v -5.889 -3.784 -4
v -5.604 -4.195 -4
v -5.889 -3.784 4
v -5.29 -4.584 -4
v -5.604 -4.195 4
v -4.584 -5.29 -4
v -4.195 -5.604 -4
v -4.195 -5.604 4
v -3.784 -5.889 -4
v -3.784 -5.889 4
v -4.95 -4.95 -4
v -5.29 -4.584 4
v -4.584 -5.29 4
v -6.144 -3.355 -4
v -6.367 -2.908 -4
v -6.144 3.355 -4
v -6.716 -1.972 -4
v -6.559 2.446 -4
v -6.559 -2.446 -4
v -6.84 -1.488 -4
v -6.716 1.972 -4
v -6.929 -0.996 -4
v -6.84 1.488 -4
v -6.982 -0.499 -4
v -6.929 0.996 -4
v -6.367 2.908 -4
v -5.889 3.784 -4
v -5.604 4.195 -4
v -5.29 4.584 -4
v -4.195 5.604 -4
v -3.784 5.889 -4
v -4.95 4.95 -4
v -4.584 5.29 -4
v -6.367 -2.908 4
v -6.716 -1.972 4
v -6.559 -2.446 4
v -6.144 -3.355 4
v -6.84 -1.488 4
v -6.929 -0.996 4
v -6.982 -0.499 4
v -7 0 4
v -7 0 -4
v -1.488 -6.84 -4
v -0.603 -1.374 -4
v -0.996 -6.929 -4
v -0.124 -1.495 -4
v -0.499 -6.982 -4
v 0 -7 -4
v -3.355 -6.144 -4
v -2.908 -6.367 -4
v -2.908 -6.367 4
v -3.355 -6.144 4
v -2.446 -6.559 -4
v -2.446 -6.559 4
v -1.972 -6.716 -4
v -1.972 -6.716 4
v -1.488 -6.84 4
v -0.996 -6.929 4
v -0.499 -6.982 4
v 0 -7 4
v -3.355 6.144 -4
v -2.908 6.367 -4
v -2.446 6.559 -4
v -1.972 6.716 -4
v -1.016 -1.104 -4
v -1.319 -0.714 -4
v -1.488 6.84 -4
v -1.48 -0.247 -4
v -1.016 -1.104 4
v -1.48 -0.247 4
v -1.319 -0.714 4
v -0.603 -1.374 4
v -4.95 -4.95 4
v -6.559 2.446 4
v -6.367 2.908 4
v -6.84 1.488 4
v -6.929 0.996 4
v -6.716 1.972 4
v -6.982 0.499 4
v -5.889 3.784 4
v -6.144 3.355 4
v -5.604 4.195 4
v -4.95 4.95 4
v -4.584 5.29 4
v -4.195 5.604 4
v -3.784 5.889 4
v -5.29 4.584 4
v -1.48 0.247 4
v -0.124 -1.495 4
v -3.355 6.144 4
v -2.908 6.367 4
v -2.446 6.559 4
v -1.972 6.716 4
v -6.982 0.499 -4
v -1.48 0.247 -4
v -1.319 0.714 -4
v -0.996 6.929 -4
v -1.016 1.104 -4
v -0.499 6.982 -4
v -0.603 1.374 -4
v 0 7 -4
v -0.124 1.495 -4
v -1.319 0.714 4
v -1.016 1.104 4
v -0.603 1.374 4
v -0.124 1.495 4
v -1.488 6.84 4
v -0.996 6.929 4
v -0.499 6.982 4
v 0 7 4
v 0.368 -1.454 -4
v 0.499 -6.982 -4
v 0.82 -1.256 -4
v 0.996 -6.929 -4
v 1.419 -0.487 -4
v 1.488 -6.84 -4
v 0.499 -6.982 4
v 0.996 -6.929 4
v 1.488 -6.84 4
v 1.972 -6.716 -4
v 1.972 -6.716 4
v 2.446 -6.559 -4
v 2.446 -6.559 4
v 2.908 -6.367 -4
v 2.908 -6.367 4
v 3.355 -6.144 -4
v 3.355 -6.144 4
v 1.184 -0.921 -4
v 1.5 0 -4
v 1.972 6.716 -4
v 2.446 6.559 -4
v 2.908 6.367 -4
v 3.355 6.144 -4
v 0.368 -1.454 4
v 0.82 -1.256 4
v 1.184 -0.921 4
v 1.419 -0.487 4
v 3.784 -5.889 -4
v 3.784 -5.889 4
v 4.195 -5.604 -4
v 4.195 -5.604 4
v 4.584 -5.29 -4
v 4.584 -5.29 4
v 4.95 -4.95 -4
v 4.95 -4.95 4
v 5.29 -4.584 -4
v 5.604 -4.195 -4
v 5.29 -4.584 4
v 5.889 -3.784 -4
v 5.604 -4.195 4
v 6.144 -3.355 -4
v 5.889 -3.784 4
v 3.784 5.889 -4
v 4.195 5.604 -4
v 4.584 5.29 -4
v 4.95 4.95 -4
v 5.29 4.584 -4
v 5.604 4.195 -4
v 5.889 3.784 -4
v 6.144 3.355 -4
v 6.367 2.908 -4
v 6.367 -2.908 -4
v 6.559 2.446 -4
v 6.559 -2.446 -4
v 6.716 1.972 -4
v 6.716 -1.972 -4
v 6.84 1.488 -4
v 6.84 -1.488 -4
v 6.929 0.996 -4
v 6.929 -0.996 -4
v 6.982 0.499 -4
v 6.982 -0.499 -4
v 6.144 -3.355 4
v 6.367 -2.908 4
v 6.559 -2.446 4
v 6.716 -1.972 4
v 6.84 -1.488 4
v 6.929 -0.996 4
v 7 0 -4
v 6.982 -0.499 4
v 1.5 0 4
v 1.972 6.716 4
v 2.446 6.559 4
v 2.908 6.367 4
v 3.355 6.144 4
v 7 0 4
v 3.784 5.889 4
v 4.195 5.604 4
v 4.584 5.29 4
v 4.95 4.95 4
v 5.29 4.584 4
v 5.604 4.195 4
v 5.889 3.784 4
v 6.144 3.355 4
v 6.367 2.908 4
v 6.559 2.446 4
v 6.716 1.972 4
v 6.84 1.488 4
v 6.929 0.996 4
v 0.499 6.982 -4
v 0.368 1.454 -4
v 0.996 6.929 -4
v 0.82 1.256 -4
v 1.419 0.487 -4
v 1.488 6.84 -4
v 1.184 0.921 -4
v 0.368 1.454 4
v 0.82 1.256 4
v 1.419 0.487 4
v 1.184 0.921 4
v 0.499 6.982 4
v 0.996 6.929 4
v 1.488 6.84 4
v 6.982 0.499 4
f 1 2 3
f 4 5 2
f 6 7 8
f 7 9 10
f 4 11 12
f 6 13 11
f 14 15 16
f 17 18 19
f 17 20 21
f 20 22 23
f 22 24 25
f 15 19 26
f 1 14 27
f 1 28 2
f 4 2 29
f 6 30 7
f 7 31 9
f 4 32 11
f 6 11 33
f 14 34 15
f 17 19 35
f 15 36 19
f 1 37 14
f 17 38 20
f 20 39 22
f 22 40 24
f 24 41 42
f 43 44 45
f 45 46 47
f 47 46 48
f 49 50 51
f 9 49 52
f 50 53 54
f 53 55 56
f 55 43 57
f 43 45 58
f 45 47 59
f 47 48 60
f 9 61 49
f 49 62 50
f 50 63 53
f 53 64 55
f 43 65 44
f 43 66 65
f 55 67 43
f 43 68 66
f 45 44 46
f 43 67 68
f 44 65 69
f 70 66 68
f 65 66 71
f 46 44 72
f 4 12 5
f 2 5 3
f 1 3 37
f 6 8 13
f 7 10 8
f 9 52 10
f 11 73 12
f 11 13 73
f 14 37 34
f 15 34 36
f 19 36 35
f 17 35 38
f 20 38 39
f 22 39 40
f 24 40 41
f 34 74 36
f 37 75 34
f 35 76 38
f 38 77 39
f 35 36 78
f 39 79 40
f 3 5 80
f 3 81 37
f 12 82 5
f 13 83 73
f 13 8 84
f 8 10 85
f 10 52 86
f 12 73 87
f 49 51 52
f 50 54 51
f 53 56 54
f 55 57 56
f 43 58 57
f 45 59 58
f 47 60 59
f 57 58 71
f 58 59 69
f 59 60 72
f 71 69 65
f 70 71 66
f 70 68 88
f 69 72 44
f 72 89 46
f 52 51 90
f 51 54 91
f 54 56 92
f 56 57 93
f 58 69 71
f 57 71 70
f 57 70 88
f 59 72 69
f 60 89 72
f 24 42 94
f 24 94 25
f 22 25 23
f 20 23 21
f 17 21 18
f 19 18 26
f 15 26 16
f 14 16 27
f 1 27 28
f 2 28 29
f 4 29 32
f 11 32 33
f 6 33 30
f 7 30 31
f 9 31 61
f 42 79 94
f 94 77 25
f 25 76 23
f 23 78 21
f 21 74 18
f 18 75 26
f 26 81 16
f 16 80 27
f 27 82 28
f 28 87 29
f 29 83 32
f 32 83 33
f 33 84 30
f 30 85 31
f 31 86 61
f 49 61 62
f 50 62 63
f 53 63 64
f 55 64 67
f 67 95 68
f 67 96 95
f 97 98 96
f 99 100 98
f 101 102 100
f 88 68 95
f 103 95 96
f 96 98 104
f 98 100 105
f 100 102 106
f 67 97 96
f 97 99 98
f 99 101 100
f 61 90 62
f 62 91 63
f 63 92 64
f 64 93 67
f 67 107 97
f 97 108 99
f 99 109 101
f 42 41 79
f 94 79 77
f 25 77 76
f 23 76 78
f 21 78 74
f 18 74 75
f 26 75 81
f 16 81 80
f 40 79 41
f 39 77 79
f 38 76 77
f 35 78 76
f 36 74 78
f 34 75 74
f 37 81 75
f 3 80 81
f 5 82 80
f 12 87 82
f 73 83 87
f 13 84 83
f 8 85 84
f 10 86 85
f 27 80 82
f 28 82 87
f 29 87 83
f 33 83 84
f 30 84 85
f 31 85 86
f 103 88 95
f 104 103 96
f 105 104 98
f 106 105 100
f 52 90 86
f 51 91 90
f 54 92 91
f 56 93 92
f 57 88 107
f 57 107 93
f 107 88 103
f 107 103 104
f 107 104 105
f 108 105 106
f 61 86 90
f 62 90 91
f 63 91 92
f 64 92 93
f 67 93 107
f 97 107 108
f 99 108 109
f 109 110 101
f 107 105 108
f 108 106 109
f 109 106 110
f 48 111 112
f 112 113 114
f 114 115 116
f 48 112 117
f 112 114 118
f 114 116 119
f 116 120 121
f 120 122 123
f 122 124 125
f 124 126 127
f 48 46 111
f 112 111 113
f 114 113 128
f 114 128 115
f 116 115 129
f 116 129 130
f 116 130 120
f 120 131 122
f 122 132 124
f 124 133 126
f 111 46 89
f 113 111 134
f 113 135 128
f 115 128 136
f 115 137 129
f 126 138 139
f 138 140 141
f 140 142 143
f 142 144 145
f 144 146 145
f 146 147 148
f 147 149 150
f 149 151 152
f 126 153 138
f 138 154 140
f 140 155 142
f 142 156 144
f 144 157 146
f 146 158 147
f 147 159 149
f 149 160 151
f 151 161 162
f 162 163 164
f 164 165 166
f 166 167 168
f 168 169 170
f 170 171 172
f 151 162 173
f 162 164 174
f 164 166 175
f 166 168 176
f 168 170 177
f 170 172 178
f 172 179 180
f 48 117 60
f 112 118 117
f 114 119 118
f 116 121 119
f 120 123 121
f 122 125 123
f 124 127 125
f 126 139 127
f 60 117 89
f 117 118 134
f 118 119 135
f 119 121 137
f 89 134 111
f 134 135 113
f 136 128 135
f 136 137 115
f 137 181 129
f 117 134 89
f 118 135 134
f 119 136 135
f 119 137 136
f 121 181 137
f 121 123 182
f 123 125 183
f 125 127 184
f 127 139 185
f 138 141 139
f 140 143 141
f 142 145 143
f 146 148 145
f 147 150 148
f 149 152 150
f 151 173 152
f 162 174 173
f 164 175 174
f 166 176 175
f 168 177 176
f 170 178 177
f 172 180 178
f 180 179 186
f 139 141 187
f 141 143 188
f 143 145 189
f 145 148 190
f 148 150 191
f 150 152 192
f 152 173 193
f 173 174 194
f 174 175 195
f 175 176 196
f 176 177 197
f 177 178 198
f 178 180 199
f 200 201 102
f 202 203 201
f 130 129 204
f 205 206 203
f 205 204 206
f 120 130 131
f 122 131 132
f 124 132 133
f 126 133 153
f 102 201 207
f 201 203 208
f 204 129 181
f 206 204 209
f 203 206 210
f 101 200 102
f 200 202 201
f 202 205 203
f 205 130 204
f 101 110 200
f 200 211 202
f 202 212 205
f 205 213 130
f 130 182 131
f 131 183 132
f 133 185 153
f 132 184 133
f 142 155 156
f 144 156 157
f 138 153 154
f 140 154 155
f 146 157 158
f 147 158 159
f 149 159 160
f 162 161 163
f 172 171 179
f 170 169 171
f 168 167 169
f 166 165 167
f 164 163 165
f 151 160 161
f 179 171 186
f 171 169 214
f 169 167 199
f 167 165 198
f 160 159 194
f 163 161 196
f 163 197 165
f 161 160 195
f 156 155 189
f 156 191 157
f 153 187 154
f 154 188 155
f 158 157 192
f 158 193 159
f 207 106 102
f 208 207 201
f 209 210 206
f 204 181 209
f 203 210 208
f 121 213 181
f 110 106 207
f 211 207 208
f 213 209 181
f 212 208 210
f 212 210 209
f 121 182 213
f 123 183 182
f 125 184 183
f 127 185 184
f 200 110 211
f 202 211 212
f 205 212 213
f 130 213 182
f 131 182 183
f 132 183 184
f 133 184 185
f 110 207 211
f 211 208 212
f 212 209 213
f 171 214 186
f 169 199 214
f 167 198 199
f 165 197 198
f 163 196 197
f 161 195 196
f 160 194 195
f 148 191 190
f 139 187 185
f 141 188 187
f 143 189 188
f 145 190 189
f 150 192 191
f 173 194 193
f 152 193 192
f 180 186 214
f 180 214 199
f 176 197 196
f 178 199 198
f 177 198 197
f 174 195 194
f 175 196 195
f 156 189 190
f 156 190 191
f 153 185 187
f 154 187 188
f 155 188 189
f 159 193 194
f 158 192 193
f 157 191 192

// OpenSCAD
// file: ../lib/lib.scad
// Shared helpers. Include AFTER params.scad (needs TOL, M3_* etc.).
$fa = 4; $fs = 0.5;

module rrect(size, r) {            // 2D rounded rectangle, centred
    r2 = min(r, min(size[0], size[1]) / 2 - 0.001);
    offset(r = r2) square([size[0] - 2 * r2, size[1] - 2 * r2], center = true);
}
module rbox(size, r, center_xy = true) {   // box with rounded vertical edges
    translate(center_xy ? [0, 0, 0] : [size[0] / 2, size[1] / 2, 0])
        linear_extrude(size[2]) rrect([size[0], size[1]], r);
}
module rbox_at(x0, x1, y0, y1, z0, z1, r = 0.01) {
    translate([(x0 + x1) / 2, (y0 + y1) / 2, z0]) rbox([x1 - x0, y1 - y0, z1 - z0], r);
}
module box_at(x0, x1, y0, y1, z0, z1) { translate([x0, y0, z0]) cube([x1 - x0, y1 - y0, z1 - z0]); }

module ring(ro, ri, h) { difference() { cylinder(r = ro, h = h); translate([0, 0, -1]) cylinder(r = ri, h = h + 2); } }
module ring_sector(ro, ri, h, a0, a1) {
    intersection() {
        ring(ro, ri, h);
        linear_extrude(h) polygon(concat([[0, 0]], [for (a = [a0 : (a1 - a0) / 24 : a1]) 2 * ro * [cos(a), sin(a)]]));
    }
}
// teardrop hole along an axis lying horizontal (axis = Y after rotation), printable w/o support
module teardrop2d(d) { union() { circle(d = d); rotate(45) square(d / 2); } }
// vertical heat-set insert hole, opening at z=0 going +z (depth l)
module insert_hole(l = M3_INSERT_L) { translate([0, 0, -EPS]) cylinder(d = M3_INSERT_D, h = l + EPS); }
module m3_clear(l) { translate([0, 0, -EPS]) cylinder(d = M3_CLEAR, h = l + 2 * EPS); }
module m3_csk(l) {  // countersunk clearance from z=0 upward, head at z=0 side
    translate([0, 0, -EPS]) { cylinder(d = M3_CLEAR, h = l + 2 * EPS); cylinder(d1 = 6.4, d2 = M3_CLEAR, h = 1.7); }
}
module card2d() { rrect([CARD_L, CARD_W], CARD_R); }
module card_at(cy, z) { translate([0, cy, z]) linear_extrude(CARD_T) card2d(); }

// ---- gears ----
function _inv(a) = tan(a) - a * PI_ / 180;           // involute function, a in deg
function _invpt(rb, r, ang0, s) = let(al = acos(rb / r), th = ang0 - s * (_inv(al) * 180 / PI_)) [r * cos(th), r * sin(th)];
module involute_gear2d(m, z, pa = 20, clearance = 0.05) {
    rp = m * z / 2; rb = rp * cos(pa); ra = rp + m - clearance; rf = rp - 1.25 * m;
    half = 90 / z + _inv(pa) * 180 / PI_;            // tooth half-angle at base (deg)
    n = 8;
    rs = [for (i = [0 : n]) max(rb, rf) + (ra - max(rb, rf)) * i / n];
    union() {
        circle(r = rf, $fn = z * 4);
        for (k = [0 : z - 1]) rotate(k * 360 / z) polygon(concat(
            [[rf * cos(-half), rf * sin(-half)]],
            [for (r = rs) let(p = _invpt(rb, r, half, 1)) [p[0], -p[1]]],
            [for (i = [n : -1 : 0]) _invpt(rb, rs[i], half, 1)],
            [[rf * cos(half), rf * sin(half)]]));
    }
}
// straight gear rack (2D in XY: teeth along +x, pointing -y, pitch line at y=0)
module gear_rack2d(m, len, back = 3) {
    p = PI_ * m; ad = m; de = 1.25 * m; t = tan(20);
    n = ceil(len / p) + 1;
    intersection() {
        union() {
            translate([0, de]) square([len, back]);
            for (i = [0 : n]) translate([i * p - p / 4, 0]) polygon([
                [-(p / 4 + de * t), de + 0.01], [p / 4 + de * t + 0.01, de + 0.01],
                [p / 4 - ad * t, -ad], [-(p / 4 - ad * t), -ad] ]);
        }
        translate([0, -ad - 1]) square([len, ad + de + back + 2]);
    }
}
// GT2 belt-tooth profile ring (teeth outward), 2D
module gt2_ring2d(n, r_land, ri) {
    union() {
        difference() { circle(r = r_land + 0.01, $fn = n * 2); circle(r = ri, $fn = n * 2); }
        for (k = [0 : n - 1]) rotate(k * 360 / n)
            translate([r_land, 0]) hull() { translate([-0.2, 0]) square([0.2, 1.0], center = true); translate([0.25, 0]) circle(r = 0.5, $fn = 12); }
    }
}
// main file
// Vendor model: Rubber feed roller 14x8 mm, 3 mm bore (loader). Local: axis Z, centred.
include <../params.scad>
include <../lib/lib.scad>
module vendor_feed_roller() color([0.18,0.18,0.2]) difference() { translate([0, 0, -FEED_W / 2]) cylinder(d = FEED_D, h = FEED_W); cylinder(d = 3, h = 20, center = true); }

vendor_feed_roller();
